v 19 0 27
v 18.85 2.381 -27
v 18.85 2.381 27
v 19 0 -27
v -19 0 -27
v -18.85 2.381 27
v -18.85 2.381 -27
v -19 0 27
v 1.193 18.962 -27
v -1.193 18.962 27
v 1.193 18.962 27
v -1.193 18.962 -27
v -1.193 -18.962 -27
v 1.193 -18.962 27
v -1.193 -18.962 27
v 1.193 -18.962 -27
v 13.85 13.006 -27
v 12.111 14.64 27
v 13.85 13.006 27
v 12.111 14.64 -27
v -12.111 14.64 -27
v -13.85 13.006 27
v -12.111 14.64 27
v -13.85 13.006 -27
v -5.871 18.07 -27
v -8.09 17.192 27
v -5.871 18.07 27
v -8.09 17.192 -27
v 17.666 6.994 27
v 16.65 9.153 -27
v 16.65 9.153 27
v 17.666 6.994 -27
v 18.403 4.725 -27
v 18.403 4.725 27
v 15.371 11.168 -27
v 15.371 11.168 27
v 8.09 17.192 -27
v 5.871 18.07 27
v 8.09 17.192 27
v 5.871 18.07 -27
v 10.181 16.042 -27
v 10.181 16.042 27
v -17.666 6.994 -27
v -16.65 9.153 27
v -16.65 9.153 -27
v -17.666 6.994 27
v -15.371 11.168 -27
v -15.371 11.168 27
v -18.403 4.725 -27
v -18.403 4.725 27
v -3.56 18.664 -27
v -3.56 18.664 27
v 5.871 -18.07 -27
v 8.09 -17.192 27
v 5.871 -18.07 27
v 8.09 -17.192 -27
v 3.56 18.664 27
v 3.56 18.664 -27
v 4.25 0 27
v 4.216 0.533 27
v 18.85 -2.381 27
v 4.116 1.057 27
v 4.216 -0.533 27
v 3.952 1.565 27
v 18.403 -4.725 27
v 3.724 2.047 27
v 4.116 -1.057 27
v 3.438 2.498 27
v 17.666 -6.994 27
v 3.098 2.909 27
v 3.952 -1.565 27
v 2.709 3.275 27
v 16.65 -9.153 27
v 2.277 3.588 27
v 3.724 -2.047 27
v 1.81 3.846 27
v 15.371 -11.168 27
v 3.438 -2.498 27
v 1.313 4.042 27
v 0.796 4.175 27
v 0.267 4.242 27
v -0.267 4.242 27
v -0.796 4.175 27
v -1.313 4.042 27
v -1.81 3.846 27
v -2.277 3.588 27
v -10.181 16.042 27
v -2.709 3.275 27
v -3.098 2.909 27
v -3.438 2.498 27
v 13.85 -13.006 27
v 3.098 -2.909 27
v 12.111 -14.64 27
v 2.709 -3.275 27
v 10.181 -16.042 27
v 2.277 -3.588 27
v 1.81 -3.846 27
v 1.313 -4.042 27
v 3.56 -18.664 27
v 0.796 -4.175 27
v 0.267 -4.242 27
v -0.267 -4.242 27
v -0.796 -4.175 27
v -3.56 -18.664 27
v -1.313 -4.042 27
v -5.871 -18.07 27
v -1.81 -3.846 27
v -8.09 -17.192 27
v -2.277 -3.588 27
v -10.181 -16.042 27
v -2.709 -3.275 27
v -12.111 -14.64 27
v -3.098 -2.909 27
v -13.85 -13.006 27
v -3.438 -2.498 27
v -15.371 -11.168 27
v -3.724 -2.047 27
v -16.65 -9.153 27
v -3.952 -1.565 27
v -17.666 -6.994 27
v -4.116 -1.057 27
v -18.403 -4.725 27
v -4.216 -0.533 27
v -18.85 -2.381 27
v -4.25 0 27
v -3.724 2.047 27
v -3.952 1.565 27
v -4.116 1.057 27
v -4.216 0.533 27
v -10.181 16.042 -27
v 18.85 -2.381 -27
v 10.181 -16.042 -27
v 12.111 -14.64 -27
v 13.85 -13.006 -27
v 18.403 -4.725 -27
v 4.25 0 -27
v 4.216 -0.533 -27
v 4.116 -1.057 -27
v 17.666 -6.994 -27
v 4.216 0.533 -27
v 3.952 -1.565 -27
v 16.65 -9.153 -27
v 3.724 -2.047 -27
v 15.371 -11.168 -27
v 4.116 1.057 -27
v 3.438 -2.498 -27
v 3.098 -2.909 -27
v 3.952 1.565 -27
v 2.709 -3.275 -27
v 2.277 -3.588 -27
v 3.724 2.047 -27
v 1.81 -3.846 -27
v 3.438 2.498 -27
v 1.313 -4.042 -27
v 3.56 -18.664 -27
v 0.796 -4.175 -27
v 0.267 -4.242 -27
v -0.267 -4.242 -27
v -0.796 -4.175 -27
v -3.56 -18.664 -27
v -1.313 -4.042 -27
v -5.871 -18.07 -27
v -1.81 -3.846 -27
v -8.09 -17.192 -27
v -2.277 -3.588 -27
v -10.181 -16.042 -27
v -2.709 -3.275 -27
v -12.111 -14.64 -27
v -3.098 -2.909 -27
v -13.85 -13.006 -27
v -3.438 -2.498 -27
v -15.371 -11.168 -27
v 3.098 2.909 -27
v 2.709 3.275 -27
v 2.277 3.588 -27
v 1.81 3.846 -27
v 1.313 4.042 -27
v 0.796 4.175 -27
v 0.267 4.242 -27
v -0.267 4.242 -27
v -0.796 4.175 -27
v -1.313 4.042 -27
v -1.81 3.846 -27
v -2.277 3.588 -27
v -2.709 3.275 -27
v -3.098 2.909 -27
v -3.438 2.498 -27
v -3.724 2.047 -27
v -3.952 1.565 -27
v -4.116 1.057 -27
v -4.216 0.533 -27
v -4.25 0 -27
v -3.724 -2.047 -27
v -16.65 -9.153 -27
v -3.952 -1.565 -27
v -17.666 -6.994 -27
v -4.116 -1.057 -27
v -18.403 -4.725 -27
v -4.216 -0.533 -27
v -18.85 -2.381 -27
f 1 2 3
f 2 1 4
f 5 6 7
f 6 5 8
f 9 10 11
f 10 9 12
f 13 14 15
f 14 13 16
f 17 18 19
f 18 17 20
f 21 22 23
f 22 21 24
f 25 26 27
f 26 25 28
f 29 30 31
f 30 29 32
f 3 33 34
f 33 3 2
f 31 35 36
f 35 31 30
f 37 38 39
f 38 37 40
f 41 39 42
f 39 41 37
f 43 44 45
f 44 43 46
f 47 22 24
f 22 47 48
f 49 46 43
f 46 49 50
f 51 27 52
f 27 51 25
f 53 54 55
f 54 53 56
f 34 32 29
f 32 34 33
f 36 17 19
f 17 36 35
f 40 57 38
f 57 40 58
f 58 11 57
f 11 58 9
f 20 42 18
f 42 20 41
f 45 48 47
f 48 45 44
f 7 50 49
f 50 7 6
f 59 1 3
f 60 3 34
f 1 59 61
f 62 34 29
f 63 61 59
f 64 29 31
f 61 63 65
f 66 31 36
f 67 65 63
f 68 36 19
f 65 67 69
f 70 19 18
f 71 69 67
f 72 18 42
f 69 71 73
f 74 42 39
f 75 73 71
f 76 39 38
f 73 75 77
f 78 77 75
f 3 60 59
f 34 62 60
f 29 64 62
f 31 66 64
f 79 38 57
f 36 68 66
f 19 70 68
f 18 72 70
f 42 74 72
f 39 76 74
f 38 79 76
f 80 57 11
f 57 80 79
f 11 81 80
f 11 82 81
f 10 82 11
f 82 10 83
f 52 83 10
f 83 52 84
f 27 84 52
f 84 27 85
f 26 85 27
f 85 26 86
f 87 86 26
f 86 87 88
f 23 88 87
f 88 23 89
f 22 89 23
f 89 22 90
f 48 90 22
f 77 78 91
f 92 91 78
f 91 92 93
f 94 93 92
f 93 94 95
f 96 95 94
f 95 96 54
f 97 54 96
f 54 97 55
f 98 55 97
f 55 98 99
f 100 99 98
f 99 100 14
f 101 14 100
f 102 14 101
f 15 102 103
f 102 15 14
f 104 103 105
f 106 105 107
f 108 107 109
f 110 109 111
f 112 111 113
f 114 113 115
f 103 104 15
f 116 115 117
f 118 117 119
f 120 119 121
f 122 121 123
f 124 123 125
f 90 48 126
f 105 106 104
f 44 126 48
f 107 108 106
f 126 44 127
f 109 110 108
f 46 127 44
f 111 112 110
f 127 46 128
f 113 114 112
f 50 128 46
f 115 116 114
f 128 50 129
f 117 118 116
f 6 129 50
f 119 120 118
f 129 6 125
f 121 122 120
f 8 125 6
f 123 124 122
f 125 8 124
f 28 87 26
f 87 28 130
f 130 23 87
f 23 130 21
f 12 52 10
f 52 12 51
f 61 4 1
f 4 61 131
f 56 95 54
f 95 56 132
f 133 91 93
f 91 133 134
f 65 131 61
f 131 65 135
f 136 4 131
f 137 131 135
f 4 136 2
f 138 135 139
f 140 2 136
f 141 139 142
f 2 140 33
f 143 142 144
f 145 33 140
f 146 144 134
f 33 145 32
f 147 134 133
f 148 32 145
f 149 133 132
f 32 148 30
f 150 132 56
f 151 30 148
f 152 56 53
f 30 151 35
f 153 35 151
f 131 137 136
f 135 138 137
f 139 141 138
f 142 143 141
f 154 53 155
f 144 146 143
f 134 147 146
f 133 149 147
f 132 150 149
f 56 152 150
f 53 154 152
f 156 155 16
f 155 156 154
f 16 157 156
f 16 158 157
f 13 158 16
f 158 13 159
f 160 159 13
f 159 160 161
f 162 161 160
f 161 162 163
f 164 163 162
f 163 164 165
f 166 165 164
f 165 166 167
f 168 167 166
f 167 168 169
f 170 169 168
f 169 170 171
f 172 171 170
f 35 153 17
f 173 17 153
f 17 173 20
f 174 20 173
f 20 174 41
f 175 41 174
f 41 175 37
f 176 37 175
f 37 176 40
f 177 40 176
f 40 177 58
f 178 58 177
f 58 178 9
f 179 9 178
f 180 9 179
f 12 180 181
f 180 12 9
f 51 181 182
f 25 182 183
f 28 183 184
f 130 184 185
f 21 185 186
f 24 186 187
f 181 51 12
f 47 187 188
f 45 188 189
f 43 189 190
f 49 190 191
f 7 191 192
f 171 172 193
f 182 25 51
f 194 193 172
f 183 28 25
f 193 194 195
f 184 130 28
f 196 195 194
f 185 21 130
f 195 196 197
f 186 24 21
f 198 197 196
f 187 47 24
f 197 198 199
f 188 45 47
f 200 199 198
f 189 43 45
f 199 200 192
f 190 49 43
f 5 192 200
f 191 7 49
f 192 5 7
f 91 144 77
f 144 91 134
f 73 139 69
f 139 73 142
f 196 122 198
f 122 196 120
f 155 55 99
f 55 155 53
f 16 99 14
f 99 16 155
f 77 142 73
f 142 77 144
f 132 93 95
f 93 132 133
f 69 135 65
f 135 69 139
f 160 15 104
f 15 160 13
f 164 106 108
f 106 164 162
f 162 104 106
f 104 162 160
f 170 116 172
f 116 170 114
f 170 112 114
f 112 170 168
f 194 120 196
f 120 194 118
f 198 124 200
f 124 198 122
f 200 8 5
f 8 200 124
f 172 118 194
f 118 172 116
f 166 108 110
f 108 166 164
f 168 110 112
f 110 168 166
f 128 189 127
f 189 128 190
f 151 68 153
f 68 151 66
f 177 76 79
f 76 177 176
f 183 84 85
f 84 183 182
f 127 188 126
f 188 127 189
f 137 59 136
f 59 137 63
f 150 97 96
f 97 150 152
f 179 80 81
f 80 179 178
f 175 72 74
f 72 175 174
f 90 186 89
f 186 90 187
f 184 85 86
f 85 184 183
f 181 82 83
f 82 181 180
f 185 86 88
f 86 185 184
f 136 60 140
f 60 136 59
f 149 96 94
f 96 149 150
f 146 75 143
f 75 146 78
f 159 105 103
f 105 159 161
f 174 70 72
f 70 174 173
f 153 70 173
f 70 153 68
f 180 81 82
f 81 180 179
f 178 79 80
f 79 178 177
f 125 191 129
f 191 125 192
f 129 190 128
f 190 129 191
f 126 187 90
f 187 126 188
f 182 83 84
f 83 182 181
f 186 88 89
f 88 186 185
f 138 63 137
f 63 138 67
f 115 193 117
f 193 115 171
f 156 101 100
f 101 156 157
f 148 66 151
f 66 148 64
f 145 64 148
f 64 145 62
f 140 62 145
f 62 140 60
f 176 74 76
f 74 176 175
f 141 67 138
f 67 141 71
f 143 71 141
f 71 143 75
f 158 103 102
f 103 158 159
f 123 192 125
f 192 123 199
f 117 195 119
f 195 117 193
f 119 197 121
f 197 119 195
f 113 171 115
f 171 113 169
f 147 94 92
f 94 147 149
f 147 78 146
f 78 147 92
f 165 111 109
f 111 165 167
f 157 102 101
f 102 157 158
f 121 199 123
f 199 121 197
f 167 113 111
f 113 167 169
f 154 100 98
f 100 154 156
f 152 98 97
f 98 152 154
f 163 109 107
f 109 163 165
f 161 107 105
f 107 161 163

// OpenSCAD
$fn = 50;


difference() {
	union() {
		translate(v = [0, 0, -27.0000000000]) {
			cylinder(h = 54, r = 19.0000000000);
		}
	}
	union() {
		translate(v = [0, 0, -100.0000000000]) {
			cylinder(h = 200, r = 4.2500000000);
		}
	}
}
